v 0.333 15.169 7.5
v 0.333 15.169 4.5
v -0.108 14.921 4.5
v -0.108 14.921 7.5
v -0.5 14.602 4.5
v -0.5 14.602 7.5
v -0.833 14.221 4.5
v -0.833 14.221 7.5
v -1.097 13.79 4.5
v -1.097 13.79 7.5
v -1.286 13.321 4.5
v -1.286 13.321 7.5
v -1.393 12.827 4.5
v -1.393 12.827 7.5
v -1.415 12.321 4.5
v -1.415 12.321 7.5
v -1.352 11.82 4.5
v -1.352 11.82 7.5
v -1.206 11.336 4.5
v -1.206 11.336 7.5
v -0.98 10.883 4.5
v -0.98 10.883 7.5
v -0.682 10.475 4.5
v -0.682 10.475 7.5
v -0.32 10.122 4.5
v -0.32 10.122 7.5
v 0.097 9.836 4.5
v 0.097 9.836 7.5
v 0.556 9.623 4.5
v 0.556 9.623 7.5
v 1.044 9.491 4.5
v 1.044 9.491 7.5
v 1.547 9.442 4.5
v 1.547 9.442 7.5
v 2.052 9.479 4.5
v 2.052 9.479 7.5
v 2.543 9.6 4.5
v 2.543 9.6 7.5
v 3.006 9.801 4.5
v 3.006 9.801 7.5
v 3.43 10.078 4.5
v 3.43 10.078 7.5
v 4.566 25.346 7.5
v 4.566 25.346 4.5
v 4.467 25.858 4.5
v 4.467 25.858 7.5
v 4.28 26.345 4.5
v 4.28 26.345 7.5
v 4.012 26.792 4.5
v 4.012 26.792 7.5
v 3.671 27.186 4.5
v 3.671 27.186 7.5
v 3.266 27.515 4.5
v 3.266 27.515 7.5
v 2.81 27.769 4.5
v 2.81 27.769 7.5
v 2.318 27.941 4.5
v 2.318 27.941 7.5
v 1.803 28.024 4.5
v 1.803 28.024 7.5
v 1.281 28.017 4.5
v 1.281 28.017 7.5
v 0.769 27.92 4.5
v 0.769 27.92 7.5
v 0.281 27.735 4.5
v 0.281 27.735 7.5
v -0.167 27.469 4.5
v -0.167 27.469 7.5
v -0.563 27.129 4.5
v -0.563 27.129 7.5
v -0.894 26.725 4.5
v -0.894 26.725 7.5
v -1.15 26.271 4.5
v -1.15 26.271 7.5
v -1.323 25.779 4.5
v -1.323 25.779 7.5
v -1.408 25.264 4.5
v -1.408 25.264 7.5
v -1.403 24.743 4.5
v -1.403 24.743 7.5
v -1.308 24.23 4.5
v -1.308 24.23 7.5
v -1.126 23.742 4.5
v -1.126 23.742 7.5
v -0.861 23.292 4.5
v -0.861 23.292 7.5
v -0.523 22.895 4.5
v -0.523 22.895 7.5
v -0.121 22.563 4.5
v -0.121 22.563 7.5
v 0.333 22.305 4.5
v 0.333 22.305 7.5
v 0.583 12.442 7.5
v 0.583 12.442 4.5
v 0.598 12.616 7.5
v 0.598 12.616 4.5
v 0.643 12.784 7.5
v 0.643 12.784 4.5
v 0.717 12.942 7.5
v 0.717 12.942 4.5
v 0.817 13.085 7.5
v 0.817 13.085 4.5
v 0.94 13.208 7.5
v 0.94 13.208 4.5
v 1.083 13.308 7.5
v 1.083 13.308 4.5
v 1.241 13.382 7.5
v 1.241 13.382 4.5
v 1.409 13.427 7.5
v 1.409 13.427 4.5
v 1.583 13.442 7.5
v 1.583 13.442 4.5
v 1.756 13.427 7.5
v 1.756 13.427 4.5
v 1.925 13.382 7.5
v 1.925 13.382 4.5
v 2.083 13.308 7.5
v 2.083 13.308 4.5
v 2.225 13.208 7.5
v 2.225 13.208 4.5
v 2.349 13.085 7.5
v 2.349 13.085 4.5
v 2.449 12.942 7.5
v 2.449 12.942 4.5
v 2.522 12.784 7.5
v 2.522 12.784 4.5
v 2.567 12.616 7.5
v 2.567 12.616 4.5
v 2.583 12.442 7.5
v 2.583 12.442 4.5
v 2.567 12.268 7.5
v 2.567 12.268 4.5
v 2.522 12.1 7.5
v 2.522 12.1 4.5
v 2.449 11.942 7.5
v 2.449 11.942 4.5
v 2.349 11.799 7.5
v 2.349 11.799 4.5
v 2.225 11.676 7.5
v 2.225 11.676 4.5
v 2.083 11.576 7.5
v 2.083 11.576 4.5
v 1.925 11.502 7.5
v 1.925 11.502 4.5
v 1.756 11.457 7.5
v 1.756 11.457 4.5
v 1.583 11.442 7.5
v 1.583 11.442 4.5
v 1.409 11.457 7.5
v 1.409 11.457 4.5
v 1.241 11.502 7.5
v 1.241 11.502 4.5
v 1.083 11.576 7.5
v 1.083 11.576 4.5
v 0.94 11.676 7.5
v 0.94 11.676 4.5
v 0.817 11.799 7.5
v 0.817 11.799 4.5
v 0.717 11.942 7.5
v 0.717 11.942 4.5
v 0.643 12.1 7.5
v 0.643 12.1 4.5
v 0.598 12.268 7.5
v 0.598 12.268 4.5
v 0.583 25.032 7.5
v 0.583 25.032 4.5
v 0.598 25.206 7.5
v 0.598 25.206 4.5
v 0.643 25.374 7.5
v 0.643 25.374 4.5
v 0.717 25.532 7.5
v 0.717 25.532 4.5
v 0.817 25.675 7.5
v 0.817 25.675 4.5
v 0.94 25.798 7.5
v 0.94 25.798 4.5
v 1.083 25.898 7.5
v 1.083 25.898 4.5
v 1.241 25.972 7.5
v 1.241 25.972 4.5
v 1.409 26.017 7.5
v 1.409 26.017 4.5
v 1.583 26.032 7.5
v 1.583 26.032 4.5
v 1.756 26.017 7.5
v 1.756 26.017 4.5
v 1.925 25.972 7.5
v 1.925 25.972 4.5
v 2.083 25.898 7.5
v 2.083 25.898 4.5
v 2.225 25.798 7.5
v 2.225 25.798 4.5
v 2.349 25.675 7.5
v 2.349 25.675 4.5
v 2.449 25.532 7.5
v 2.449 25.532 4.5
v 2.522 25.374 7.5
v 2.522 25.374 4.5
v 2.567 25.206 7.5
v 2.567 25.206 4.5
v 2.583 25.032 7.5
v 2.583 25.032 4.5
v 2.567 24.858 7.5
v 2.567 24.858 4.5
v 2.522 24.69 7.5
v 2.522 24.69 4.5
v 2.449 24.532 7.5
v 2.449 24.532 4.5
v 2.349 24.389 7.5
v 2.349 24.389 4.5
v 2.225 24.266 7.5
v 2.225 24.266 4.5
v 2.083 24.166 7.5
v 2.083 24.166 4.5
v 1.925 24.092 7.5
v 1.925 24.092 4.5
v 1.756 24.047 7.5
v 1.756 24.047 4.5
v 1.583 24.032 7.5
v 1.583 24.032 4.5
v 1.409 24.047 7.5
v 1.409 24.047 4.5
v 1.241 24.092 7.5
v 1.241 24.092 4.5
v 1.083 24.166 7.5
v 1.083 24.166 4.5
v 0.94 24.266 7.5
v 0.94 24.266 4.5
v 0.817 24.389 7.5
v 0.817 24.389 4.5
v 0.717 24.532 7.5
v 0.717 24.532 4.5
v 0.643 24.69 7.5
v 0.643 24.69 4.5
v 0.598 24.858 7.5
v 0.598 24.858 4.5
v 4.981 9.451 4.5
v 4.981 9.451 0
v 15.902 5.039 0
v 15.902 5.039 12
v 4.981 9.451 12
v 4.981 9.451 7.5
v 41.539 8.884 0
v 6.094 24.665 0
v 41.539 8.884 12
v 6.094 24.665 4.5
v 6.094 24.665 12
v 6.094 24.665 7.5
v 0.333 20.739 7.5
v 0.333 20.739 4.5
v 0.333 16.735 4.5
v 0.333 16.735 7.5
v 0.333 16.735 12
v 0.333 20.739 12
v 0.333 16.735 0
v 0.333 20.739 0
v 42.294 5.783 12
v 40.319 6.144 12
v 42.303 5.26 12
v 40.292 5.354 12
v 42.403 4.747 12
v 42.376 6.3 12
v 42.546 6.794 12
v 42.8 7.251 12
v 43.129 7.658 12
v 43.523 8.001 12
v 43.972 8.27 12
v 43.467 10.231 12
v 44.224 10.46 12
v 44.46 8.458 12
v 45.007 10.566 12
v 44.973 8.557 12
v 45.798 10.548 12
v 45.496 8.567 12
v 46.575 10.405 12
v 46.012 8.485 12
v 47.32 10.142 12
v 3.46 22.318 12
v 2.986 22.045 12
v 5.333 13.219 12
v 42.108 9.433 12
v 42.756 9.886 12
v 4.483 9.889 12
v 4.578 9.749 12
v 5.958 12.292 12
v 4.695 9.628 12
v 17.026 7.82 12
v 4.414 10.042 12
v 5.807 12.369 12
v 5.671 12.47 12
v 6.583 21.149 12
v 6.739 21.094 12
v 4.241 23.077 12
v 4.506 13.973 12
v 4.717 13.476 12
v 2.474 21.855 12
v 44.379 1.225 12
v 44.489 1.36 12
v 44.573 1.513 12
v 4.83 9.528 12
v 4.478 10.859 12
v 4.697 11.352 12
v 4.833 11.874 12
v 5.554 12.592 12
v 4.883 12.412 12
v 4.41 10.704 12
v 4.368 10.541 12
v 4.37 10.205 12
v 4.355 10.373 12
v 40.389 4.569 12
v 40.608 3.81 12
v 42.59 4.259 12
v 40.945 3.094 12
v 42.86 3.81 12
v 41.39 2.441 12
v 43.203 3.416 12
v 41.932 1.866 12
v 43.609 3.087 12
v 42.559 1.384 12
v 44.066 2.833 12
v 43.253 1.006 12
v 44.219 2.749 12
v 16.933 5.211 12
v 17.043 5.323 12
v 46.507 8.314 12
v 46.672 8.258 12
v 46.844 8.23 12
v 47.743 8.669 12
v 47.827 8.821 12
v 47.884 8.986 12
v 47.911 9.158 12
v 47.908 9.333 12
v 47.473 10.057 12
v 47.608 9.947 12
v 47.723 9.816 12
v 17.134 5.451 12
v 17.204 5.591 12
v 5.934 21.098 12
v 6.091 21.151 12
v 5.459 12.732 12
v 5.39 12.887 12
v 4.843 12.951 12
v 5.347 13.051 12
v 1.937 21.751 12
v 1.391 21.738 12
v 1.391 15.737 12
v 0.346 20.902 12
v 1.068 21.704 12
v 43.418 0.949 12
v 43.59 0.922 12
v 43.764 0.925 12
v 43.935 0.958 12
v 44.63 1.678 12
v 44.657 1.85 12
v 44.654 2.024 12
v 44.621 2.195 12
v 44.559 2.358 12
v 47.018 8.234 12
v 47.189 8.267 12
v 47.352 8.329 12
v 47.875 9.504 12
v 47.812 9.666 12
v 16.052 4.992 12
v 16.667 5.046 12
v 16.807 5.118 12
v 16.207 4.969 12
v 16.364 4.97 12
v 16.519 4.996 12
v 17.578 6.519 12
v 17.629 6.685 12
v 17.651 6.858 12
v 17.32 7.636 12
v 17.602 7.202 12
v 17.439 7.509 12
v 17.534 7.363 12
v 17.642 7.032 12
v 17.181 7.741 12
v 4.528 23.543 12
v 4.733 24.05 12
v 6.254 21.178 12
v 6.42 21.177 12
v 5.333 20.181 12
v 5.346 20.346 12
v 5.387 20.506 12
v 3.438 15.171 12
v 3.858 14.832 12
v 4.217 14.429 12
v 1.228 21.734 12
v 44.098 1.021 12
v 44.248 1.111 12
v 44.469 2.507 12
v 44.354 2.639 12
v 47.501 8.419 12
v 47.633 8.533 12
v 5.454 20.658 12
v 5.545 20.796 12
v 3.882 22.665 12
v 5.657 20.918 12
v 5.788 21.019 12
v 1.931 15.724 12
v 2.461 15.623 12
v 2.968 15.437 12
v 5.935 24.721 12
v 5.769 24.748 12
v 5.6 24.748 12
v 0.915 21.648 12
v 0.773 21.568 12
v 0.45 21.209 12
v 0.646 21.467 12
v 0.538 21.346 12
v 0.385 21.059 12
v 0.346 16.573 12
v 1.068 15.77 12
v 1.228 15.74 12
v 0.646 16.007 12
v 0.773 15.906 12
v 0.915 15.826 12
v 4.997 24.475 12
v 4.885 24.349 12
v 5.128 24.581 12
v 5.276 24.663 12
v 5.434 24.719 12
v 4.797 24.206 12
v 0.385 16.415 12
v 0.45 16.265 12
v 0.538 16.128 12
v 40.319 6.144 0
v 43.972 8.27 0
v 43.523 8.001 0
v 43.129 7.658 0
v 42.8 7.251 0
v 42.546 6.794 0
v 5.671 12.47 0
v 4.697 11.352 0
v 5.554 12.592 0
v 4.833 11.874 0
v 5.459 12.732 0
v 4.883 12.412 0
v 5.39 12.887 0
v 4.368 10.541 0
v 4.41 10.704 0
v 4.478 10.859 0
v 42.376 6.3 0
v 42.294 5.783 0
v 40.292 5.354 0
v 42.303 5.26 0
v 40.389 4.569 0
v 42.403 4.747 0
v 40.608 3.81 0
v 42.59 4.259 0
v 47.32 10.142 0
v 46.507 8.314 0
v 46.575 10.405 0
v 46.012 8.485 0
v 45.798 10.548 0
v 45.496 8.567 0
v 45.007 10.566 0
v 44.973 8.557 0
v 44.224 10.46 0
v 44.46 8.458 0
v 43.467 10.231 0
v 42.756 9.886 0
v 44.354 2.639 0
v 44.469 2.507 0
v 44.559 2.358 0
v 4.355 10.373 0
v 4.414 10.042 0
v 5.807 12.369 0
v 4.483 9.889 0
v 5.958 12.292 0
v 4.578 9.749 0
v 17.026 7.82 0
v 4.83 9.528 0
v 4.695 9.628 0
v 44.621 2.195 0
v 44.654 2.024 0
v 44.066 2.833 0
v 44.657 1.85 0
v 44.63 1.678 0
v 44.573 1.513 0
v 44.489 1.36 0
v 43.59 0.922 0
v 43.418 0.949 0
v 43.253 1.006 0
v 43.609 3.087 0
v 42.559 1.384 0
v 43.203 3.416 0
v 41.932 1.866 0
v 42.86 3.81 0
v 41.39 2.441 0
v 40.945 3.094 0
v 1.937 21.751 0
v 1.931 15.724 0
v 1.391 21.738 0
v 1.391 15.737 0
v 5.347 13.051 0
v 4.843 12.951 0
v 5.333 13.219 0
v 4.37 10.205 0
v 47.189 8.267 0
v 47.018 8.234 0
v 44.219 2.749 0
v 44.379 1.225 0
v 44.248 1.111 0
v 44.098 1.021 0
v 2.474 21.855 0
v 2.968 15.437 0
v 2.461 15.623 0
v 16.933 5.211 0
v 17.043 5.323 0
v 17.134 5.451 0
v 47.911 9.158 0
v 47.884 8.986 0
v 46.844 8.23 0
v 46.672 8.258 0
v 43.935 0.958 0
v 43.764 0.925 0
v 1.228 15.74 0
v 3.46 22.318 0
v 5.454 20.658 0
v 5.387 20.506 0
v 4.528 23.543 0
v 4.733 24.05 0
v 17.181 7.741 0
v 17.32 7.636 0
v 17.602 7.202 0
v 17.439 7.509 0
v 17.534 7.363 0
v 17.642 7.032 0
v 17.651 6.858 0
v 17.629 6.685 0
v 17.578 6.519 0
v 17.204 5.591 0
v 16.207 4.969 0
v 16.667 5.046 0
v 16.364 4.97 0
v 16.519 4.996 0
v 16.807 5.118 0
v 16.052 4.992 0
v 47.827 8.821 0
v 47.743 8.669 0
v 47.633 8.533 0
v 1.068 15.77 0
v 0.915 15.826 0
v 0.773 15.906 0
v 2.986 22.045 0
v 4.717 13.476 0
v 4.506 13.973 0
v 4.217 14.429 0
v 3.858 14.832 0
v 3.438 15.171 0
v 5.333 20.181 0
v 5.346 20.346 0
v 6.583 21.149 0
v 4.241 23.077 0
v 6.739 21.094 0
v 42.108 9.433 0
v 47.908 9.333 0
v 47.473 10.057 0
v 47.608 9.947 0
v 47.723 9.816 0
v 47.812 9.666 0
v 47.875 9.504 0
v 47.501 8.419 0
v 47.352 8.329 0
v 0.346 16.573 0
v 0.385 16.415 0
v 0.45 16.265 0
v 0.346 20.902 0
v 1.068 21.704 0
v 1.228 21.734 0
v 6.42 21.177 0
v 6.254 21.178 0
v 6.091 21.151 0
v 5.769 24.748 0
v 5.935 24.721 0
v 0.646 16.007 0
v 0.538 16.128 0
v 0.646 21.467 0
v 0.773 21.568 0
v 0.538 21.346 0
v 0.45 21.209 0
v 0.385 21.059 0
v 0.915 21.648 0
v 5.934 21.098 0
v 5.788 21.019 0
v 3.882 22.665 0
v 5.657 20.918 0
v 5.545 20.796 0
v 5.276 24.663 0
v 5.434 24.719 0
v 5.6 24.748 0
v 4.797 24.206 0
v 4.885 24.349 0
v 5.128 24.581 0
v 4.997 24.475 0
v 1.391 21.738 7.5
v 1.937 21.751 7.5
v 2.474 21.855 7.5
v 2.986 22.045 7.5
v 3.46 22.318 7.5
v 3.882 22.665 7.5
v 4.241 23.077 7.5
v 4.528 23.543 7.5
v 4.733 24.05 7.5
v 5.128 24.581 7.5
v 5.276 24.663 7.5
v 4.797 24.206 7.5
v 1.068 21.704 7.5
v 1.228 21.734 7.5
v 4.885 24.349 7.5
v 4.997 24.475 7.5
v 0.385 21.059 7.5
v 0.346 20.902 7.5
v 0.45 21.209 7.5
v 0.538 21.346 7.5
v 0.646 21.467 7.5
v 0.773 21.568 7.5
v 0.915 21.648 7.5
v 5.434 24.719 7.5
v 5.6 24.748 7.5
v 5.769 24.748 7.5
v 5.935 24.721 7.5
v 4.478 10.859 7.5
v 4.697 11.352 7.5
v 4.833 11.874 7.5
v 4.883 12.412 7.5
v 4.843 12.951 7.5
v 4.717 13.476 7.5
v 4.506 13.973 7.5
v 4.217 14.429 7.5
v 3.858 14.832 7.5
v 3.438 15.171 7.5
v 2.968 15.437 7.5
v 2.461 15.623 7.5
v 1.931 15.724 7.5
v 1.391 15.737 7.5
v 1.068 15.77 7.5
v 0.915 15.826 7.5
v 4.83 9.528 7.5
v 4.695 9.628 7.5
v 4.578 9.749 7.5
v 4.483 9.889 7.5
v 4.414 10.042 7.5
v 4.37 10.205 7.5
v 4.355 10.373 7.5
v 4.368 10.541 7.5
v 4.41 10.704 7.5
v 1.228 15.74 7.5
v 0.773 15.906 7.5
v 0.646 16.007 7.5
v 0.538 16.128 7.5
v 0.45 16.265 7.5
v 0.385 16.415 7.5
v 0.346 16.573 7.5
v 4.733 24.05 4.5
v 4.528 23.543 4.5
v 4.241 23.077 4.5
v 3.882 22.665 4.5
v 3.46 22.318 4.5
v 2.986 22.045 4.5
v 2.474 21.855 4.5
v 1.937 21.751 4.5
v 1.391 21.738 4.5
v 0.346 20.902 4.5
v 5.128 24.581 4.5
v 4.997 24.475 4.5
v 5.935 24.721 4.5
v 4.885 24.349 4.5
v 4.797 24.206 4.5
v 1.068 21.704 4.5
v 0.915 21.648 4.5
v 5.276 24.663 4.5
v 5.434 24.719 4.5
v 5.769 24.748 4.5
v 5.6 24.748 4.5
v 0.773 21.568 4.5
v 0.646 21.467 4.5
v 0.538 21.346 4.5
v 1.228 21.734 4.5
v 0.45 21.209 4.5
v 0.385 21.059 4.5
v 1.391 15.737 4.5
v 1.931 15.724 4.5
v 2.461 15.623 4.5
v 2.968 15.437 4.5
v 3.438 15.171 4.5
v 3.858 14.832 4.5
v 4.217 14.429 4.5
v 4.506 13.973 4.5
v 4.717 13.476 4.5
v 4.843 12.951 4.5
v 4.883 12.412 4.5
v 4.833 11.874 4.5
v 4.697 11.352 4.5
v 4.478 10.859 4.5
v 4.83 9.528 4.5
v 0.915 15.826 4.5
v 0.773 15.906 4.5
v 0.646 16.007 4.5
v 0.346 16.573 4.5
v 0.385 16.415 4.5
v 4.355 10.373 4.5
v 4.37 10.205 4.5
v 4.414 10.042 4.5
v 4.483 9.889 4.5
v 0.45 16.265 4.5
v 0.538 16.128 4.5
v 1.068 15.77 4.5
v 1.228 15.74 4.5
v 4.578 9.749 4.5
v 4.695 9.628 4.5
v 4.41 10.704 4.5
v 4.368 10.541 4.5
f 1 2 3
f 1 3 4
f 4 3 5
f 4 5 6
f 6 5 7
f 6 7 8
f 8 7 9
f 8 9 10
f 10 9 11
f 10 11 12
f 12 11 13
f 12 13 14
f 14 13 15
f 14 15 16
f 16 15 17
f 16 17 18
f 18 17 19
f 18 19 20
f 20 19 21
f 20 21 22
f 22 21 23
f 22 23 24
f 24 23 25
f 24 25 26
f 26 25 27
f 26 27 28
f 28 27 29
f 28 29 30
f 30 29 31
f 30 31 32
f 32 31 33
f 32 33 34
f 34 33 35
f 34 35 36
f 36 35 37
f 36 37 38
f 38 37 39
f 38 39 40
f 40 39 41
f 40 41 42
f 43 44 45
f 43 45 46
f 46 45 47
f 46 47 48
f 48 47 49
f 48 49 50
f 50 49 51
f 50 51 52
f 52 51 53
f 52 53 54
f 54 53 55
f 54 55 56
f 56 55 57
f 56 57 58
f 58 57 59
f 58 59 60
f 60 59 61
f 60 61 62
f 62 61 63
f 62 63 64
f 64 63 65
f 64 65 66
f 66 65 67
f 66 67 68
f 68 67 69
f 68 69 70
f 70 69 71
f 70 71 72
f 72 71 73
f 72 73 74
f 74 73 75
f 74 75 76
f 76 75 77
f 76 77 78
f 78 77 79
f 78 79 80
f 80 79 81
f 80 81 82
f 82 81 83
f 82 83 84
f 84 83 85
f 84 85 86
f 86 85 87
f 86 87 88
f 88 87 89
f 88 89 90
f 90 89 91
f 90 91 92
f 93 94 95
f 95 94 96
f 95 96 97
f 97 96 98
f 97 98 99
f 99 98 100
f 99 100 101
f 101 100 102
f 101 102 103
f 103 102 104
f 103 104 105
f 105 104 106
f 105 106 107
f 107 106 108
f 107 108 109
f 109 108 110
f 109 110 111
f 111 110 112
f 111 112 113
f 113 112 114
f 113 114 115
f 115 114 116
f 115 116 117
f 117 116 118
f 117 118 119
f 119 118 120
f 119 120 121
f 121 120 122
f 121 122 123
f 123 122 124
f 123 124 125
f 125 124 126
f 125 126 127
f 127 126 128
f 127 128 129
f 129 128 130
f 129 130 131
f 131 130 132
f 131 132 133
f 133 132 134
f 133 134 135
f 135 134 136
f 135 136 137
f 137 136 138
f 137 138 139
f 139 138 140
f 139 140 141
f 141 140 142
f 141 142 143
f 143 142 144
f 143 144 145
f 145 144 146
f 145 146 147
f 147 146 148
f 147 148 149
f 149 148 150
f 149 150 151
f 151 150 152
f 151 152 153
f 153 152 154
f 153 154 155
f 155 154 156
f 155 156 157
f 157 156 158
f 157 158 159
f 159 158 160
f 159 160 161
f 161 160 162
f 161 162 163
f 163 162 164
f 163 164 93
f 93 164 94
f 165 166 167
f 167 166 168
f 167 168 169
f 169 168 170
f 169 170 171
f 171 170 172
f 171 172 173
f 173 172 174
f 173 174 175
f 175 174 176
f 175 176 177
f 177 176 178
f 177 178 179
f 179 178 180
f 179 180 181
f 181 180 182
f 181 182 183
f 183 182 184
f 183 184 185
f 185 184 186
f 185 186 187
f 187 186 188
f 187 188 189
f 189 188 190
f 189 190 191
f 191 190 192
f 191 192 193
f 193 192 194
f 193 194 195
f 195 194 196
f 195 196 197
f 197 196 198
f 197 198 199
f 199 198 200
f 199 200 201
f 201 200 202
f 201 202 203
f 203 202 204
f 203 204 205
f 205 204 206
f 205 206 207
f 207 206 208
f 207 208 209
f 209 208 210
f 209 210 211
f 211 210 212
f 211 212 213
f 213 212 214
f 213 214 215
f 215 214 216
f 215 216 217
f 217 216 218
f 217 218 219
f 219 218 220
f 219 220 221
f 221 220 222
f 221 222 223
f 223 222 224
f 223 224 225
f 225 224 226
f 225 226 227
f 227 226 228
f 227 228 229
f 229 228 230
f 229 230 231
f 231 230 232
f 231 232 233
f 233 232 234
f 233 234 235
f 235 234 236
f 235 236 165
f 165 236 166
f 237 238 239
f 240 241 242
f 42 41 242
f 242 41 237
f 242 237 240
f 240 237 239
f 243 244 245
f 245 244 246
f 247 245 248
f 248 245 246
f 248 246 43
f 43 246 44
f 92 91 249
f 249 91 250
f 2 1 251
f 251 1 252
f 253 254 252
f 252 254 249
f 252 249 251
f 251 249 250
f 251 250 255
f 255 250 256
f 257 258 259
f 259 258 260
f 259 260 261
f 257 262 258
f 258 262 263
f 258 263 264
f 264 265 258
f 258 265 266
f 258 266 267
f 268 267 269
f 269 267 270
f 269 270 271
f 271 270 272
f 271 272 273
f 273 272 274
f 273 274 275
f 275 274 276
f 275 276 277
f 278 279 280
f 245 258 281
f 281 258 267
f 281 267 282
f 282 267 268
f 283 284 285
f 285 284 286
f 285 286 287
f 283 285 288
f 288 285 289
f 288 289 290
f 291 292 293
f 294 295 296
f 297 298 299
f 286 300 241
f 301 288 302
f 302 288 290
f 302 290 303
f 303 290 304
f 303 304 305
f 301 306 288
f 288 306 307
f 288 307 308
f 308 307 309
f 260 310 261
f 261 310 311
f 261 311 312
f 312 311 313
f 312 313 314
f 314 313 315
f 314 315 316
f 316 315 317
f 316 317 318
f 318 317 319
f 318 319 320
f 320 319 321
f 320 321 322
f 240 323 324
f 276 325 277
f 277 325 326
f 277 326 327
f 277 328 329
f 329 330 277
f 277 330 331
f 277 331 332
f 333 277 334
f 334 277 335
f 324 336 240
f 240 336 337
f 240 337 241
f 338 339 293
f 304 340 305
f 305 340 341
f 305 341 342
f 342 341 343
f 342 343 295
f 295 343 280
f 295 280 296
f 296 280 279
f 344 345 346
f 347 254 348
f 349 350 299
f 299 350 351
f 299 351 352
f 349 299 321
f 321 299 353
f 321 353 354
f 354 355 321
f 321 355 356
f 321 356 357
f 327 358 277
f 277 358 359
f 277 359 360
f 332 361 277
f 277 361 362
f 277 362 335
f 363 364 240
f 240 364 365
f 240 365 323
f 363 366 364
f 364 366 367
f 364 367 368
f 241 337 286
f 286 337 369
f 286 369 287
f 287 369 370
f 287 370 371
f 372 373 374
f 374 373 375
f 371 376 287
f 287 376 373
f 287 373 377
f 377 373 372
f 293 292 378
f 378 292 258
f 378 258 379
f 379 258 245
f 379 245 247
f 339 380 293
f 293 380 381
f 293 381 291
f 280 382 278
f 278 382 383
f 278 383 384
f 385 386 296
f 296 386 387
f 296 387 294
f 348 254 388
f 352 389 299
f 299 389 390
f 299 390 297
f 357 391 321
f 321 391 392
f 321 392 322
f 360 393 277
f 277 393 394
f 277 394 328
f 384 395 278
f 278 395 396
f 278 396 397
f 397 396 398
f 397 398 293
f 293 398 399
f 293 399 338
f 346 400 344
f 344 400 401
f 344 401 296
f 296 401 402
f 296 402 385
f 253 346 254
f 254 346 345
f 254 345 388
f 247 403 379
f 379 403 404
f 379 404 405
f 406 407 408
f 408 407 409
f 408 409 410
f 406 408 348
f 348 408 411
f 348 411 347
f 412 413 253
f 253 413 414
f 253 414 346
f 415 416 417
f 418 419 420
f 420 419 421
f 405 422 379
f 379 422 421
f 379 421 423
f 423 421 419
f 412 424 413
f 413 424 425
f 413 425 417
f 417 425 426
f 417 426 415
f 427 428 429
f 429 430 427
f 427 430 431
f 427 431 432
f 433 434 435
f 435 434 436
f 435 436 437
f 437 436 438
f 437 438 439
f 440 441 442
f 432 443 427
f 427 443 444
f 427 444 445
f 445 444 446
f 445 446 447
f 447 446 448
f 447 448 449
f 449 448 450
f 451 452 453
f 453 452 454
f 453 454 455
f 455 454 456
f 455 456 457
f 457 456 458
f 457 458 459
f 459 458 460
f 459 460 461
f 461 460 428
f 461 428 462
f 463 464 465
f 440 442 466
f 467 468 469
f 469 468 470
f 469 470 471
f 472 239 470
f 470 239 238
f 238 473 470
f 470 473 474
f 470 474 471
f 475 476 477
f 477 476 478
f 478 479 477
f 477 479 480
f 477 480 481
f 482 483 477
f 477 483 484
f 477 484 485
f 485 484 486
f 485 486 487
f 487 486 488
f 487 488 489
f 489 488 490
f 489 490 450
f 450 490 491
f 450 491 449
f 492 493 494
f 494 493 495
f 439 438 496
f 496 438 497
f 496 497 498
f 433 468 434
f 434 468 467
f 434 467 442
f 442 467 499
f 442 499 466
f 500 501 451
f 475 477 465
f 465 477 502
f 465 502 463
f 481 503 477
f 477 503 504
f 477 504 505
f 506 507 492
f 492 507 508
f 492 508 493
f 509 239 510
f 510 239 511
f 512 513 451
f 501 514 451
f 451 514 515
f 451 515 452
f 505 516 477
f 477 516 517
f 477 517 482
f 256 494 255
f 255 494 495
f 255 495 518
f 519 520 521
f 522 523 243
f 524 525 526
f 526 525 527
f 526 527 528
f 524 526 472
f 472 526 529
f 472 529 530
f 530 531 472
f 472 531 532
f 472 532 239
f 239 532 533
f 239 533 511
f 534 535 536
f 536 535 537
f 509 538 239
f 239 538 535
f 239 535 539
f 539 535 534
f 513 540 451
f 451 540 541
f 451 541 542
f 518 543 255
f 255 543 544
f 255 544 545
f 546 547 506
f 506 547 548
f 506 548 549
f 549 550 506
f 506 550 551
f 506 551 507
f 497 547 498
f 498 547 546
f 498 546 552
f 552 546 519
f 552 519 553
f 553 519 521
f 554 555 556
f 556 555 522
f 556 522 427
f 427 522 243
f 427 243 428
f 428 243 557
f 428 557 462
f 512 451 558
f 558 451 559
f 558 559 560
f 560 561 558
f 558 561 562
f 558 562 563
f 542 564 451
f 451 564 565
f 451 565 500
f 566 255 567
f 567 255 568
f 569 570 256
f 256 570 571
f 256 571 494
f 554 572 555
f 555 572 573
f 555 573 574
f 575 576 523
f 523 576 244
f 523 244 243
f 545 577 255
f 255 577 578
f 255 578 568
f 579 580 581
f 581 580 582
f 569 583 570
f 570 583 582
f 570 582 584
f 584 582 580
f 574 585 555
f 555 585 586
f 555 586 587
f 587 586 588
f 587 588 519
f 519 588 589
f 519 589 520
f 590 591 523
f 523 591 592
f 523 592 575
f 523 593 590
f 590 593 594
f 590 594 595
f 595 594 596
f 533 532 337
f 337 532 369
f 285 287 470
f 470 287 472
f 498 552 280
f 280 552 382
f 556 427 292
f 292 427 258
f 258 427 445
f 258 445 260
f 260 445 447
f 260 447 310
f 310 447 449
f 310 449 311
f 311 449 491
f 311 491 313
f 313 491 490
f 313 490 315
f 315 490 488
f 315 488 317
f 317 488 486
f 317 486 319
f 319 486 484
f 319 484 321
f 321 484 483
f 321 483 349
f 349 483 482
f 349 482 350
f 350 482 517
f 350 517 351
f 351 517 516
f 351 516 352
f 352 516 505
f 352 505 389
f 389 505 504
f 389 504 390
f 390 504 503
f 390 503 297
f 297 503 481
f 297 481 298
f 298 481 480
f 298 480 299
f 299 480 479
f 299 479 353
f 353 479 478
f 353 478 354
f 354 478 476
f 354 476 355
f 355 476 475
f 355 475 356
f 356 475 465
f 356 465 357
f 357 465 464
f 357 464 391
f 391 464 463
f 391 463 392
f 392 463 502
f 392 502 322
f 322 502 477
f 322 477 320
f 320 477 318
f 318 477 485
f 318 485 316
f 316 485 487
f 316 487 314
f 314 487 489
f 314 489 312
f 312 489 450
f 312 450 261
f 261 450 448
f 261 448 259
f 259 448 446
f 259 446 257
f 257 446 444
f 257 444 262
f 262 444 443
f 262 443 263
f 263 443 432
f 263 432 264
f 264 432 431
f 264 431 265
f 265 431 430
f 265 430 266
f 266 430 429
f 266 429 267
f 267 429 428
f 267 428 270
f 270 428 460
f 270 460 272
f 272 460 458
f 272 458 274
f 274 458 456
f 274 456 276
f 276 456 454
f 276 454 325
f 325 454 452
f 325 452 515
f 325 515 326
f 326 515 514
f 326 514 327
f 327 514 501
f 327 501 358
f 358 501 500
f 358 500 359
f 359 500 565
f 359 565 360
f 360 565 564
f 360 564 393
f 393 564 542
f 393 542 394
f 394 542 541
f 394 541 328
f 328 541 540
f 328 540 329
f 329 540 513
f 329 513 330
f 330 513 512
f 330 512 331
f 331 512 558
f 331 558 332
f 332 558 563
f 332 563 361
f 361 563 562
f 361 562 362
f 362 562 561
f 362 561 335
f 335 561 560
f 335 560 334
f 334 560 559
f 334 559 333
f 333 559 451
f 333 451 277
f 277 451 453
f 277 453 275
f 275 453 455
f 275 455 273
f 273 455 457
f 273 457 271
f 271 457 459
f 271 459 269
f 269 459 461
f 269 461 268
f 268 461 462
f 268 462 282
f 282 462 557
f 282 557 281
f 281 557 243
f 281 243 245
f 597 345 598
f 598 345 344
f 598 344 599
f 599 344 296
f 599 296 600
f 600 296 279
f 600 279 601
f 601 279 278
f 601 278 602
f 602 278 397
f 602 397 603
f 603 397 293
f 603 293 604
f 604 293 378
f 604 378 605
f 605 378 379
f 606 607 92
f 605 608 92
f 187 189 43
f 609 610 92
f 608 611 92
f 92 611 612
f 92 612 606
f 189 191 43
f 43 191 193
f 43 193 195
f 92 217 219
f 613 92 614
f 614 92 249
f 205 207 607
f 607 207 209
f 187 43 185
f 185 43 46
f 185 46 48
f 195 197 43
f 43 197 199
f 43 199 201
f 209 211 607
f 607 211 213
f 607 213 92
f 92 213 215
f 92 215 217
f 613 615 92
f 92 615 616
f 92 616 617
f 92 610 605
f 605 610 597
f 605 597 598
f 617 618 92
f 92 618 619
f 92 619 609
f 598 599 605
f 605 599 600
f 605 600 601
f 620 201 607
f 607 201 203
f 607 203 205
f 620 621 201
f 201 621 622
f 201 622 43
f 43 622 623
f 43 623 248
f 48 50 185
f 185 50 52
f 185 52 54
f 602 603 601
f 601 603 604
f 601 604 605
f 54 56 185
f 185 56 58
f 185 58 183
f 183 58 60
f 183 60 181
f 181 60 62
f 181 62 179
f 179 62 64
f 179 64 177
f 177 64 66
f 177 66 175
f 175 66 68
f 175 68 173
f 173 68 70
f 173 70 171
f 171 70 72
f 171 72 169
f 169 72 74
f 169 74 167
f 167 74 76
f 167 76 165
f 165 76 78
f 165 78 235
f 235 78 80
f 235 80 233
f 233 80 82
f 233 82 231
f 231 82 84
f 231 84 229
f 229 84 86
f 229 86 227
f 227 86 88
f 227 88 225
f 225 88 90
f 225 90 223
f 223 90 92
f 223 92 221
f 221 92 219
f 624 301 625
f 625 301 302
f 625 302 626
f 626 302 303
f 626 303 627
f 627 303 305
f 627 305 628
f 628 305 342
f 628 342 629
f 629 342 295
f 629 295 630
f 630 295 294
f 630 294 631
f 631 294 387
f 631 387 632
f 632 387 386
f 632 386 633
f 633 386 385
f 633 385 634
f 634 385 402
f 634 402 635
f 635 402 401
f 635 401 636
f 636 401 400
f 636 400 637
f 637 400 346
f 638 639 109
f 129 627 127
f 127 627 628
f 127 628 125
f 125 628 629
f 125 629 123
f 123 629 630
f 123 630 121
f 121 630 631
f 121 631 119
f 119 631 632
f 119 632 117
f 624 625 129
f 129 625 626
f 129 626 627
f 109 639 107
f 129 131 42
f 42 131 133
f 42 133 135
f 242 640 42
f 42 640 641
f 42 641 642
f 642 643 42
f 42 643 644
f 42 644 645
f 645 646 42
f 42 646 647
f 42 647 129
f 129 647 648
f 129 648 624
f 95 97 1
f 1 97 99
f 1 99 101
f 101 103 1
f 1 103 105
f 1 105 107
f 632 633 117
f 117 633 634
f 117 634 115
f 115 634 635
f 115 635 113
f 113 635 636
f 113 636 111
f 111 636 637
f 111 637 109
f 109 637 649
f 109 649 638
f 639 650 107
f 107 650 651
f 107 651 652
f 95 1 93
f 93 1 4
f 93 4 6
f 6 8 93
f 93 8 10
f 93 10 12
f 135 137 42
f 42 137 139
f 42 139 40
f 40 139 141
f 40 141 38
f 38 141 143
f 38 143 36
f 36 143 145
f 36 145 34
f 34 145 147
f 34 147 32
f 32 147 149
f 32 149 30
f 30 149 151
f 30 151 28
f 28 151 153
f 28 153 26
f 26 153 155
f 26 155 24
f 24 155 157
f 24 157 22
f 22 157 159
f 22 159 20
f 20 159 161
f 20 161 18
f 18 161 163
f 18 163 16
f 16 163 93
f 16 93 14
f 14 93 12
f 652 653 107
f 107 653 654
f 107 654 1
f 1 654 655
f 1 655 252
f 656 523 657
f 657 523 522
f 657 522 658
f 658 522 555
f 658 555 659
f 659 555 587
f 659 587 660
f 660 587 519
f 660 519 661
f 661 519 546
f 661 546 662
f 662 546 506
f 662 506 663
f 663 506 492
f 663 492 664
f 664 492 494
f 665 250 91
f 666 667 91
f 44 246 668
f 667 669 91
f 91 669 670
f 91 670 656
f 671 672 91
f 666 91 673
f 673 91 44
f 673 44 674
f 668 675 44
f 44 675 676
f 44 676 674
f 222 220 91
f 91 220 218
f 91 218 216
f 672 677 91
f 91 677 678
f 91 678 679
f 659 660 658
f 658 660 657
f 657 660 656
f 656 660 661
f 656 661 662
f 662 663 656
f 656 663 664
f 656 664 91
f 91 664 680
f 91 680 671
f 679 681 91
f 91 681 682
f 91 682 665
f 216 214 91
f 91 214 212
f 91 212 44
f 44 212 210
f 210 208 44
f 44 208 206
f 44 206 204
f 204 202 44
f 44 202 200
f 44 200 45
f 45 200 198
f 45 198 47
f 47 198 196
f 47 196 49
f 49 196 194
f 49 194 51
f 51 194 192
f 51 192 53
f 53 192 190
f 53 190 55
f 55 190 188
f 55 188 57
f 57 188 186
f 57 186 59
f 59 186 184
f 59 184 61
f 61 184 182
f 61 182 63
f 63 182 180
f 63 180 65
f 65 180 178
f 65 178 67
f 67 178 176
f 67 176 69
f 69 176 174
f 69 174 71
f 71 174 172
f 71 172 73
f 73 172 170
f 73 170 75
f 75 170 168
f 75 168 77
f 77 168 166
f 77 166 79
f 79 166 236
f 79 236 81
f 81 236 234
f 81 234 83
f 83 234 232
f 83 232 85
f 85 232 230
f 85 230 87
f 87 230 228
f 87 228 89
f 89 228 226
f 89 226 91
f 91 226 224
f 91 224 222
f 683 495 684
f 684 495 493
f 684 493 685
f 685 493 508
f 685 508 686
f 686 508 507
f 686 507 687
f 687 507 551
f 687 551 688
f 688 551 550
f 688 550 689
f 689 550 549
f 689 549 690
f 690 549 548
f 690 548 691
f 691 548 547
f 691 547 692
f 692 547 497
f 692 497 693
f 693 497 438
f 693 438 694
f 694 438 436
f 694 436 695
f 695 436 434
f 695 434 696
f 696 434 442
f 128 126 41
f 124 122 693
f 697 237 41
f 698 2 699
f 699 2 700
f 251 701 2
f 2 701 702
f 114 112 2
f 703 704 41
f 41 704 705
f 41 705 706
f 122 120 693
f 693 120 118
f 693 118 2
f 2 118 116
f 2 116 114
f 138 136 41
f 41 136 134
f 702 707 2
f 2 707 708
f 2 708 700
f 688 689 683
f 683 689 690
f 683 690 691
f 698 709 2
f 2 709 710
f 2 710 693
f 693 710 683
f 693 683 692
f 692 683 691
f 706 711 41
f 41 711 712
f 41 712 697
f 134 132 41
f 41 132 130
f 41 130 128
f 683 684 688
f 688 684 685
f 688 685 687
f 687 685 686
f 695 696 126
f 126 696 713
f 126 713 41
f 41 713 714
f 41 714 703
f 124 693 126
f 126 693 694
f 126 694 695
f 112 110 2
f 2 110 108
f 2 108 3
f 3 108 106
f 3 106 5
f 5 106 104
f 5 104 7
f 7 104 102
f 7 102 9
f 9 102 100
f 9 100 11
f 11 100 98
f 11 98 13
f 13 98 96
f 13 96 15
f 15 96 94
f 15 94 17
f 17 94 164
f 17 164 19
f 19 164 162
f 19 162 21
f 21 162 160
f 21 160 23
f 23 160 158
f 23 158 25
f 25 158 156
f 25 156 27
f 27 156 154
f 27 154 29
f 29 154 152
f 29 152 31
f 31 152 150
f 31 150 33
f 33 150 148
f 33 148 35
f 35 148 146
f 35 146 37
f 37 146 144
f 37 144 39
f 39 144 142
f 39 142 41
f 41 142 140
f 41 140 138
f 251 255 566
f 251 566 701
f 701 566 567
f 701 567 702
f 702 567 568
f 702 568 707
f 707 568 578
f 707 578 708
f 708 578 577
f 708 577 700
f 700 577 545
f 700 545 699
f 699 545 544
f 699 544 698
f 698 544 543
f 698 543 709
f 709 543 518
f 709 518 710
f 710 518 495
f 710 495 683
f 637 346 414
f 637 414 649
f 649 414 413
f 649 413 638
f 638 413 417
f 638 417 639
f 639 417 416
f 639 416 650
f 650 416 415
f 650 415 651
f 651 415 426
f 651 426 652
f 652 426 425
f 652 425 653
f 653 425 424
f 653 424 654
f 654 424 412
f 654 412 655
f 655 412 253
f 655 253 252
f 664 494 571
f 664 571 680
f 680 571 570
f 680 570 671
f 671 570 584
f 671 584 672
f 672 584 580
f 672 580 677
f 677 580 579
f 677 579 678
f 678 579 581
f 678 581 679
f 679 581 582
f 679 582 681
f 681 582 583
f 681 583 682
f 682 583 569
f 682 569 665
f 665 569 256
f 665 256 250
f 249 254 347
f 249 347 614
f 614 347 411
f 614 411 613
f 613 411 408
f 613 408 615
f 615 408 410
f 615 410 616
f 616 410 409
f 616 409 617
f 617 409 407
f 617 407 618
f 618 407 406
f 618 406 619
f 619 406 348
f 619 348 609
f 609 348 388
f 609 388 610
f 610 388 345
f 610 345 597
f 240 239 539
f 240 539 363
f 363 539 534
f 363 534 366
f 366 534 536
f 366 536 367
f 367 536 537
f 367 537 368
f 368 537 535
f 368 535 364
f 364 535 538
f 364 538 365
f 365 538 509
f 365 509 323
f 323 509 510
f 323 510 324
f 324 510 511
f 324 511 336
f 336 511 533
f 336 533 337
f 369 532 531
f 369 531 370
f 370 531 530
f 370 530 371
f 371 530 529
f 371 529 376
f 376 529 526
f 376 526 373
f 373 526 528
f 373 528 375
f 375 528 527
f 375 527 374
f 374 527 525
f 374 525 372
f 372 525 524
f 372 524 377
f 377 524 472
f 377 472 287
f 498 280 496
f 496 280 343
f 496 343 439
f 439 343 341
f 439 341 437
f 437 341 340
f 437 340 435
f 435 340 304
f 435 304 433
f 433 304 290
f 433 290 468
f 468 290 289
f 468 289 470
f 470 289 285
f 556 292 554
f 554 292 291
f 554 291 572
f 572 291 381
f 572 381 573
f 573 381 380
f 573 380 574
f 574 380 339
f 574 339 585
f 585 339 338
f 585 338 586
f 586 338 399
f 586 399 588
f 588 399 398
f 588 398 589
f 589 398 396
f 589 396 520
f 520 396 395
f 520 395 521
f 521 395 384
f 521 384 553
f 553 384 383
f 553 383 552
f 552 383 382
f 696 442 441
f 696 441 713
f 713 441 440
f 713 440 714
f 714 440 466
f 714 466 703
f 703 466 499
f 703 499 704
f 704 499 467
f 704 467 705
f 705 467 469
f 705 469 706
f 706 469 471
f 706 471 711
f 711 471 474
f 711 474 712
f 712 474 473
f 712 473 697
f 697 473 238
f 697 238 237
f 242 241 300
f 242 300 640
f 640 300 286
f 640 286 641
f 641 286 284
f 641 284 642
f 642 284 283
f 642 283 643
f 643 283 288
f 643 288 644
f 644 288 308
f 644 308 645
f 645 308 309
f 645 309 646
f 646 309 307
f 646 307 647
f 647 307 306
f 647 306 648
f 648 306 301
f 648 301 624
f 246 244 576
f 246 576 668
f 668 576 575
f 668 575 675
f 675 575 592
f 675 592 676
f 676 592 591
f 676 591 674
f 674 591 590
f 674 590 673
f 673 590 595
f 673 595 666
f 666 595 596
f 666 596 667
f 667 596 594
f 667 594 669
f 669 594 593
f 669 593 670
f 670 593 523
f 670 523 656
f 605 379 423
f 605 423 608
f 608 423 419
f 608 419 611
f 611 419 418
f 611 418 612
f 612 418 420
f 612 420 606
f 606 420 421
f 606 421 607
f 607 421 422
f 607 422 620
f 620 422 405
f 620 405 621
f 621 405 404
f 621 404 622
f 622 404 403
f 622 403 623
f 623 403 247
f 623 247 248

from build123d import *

# Parameters (mm, degrees)
SKETCH1_R           = 1
BOSS_EXTRUDE1_DEPTH = 12
SKETCH2_R           = 3.3
CUT_EXTRUDE1_DEPTH  = 4.5
FILLET1_R           = 1
FILLET2_R           = 1
FILLET3_R           = 1
FILLET6_R           = 1


with BuildPart() as part:
    # Sketch1 → Boss-Extrude1 (new body)
    with BuildSketch(Plane.XY):
        with BuildLine():
            Line((0.332668694, 15.169303239), (0.332668694, 22.304947181))
            ThreePointArc((0.332668694, 22.304947181), (-0.167437886, 27.468747249), (4.56623438, 25.3457106))
            Line((4.56623438, 25.3457106), (41.53945423, 8.884172534))
            ThreePointArc((41.53945423, 8.884172534), (44.223987307, 10.459606893), (47.320366603, 10.141571494))
            ThreePointArc((47.320366603, 10.141571494), (47.827175417, 8.821289393), (46.506893317, 8.314480578))
            ThreePointArc((46.506893317, 8.314480578), (42.546047014, 6.794054135), (44.066473458, 2.833207832))
            ThreePointArc((44.066473458, 2.833207832), (44.573282273, 1.512925732), (43.253000172, 1.006116917))
            ThreePointArc((43.253000172, 1.006116917), (40.944771655, 3.094367949), (40.319244301, 6.143536161))
            Line((40.319244301, 6.143536161), (5.332668694, 21.720563222))
            Line((5.332668694, 21.720563222), (5.332668694, 12.544828977))
            Line((5.332668694, 12.544828977), (17.953063304, 7.445858574))
            Line((17.953063304, 7.445858574), (16.829243524, 4.66430701))
            Line((16.829243524, 4.66430701), (3.42965312, 10.078092949))
            ThreePointArc((3.42965312, 10.078092949), (-0.980376986, 10.883023916), (0.332668694, 15.169303239))
        make_face()
        with Locations((1.582668694, 25.03212521)):
            Circle(SKETCH1_R, mode=Mode.SUBTRACT)
        with Locations((1.582668694, 12.44212521)):
            Circle(SKETCH1_R, mode=Mode.SUBTRACT)
    extrude(amount=BOSS_EXTRUDE1_DEPTH)

    # Sketch2 → Cut-Extrude1 (cut)
    with BuildSketch(Plane.XY.offset(12)):
        with Locations((1.582668694, 25.03212521)):
            Circle(SKETCH2_R)
        with Locations((1.582668694, 12.44212521)):
            Circle(SKETCH2_R)
    cut_extrude1 = extrude(amount=-CUT_EXTRUDE1_DEPTH, mode=Mode.SUBTRACT)

    # Mirror1: Cut-Extrude1 across plane
    add(cut_extrude1.mirror(Plane.XY.offset(6)), mode=Mode.SUBTRACT)

    # Fillet1
    fillet1_edges = [part.edges().sort_by_distance(p)[0] for p in [
        (0.332668694, 21.978029599, 9.75),
        (0.332668694, 15.496220821, 9.75),
        (0.332668694, 21.978029599, 2.25),
        (0.332668694, 15.496220821, 2.25),
    ]]
    fillet(fillet1_edges, radius=FILLET1_R)

    # Fillet2
    fillet2_edges = [part.edges().sort_by_distance(p)[0] for p in [
        (17.953063304, 7.445858574, 6),
        (16.829243524, 4.66430701, 6),
    ]]
    fillet(fillet2_edges, radius=FILLET2_R)

    # Fillet3
    fillet3_edges = [part.edges().sort_by_distance(p)[0] for p in [
        (5.332668694, 21.720563222, 6),
        (5.332668694, 12.544828977, 6),
    ]]
    fillet(fillet3_edges, radius=FILLET3_R)

    # Fillet6
    fillet6_edges = [part.edges().sort_by_distance(p)[0] for p in [
        (3.746111613, 9.950235418, 9.75),
        (4.878037932, 25.206886714, 9.75),
        (3.746111613, 9.950235418, 2.25),
        (4.878037932, 25.206886714, 2.25),
    ]]
    fillet(fillet6_edges, radius=FILLET6_R)


solid = part.part
